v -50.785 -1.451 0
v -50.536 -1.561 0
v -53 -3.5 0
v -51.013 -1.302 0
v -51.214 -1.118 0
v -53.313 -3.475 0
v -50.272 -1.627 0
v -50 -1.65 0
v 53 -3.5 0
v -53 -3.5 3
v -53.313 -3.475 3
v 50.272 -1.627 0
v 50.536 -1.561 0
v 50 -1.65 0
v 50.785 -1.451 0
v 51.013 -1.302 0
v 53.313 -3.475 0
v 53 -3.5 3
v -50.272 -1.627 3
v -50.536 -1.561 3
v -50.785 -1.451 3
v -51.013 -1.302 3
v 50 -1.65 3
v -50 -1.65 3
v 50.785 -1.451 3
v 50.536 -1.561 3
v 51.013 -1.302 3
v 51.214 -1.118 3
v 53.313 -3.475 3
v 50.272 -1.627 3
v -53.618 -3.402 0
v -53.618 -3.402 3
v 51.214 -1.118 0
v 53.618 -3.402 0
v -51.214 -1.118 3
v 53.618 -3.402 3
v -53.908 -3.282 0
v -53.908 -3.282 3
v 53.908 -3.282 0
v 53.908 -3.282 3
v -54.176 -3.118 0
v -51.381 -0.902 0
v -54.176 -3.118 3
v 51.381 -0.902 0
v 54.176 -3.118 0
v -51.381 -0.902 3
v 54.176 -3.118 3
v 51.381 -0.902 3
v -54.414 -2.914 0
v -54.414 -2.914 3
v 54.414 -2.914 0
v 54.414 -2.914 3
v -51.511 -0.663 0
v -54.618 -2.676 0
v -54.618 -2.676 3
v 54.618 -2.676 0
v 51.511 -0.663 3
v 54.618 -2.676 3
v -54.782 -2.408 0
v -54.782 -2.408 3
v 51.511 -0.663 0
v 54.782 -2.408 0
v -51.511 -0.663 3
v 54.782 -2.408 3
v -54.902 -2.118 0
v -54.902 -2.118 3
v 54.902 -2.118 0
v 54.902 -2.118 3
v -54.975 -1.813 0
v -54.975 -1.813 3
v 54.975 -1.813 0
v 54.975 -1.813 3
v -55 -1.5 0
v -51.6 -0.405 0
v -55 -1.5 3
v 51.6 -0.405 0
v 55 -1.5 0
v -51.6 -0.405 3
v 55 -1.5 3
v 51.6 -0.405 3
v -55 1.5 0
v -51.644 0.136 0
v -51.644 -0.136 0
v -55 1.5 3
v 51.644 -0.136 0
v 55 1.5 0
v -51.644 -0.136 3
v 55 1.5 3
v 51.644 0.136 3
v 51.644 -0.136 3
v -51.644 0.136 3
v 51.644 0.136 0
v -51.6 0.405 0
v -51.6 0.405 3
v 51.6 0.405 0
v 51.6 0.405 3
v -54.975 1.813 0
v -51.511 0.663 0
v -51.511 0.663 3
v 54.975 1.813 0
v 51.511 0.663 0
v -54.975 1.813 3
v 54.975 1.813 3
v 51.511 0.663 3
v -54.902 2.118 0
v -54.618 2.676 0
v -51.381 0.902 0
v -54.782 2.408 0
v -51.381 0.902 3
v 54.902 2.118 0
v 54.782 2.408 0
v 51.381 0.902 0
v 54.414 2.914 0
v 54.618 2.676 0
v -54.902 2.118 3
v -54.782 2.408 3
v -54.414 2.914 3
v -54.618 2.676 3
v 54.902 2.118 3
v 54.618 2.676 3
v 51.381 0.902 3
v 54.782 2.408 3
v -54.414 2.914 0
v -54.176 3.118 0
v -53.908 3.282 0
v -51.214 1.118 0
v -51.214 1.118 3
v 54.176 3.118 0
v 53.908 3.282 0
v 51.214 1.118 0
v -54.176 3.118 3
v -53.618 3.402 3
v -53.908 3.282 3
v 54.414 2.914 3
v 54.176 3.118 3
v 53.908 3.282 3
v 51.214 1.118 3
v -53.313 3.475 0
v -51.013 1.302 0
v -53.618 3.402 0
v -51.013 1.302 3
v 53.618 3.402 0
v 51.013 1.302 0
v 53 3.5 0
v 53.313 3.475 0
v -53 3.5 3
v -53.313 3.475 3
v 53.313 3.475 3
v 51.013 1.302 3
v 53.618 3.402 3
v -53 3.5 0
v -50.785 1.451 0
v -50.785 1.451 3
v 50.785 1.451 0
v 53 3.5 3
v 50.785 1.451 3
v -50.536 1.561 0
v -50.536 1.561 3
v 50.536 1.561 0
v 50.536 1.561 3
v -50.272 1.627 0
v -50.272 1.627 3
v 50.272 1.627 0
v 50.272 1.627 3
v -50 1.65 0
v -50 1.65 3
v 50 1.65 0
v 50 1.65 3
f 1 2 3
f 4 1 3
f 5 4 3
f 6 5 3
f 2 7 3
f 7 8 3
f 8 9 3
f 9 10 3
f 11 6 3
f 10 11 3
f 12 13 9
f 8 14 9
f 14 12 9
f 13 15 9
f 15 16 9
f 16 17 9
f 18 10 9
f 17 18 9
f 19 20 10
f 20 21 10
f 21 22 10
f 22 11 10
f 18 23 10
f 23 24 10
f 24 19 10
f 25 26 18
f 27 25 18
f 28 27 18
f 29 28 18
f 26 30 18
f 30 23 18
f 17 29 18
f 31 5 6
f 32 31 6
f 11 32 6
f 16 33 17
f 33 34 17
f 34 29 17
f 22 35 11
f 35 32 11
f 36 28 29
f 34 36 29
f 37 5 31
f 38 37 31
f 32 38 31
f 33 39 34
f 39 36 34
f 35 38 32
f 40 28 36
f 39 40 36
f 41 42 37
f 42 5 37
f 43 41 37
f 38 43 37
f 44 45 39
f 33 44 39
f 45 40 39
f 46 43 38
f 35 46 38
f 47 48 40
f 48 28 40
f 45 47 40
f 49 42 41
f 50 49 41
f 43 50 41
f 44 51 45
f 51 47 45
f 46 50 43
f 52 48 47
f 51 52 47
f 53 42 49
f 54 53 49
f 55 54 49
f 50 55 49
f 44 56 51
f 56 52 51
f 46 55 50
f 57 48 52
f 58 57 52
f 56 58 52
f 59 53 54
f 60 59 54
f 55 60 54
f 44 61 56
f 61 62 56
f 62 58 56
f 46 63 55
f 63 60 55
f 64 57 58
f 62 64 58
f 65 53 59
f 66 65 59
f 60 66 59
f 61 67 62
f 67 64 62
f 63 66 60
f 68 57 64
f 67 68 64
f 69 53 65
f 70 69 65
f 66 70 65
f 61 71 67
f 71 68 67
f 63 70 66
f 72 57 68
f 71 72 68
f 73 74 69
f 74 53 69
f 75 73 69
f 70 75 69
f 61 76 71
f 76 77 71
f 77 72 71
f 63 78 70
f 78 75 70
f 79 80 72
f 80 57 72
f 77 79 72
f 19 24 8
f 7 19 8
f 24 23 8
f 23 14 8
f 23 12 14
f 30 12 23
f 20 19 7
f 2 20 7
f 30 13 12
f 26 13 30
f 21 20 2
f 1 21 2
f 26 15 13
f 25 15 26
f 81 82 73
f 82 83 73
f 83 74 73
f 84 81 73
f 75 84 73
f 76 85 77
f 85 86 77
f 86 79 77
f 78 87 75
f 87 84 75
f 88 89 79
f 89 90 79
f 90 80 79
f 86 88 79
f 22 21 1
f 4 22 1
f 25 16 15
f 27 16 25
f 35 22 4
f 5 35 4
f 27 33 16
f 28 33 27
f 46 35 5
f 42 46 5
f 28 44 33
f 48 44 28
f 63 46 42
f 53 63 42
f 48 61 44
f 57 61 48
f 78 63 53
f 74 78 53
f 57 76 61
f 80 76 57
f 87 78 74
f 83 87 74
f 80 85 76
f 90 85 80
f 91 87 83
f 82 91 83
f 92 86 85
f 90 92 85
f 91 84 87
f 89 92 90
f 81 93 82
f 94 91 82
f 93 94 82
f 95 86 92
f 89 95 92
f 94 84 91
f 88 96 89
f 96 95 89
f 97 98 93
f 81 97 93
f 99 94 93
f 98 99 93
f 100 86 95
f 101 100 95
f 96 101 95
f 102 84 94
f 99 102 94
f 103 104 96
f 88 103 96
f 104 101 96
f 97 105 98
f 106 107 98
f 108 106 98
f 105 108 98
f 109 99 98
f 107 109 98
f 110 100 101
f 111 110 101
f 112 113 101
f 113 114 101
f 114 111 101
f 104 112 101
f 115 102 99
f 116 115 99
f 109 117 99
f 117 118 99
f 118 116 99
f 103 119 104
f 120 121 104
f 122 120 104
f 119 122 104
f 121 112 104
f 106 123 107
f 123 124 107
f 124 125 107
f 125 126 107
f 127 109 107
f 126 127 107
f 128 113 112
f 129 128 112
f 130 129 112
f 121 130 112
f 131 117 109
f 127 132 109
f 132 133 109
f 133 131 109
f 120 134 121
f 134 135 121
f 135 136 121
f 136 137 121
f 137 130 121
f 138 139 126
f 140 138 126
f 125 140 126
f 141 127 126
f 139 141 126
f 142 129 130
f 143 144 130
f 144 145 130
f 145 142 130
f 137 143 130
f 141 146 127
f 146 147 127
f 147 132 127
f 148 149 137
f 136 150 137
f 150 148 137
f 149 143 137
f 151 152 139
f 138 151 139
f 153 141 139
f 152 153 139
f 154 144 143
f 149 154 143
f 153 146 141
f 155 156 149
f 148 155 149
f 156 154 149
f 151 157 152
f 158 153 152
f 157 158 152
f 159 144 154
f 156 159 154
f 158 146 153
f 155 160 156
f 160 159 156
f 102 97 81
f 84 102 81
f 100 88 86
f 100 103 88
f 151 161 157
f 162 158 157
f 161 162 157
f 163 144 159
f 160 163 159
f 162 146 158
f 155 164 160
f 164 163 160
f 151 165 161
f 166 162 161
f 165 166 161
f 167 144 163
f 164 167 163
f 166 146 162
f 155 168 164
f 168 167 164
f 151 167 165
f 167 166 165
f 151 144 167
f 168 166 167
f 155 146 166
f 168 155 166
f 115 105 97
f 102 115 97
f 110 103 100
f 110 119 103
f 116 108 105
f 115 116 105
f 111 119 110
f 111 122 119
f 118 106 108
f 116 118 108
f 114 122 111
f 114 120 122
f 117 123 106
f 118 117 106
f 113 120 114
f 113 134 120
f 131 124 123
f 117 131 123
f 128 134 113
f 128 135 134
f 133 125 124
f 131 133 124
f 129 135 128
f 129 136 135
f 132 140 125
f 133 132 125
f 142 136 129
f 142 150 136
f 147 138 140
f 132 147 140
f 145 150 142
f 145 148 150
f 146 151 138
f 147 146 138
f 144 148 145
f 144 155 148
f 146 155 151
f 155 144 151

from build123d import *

# Parameters (mm, degrees)
SKETCH_1_W      = 110
SKETCH_1_H      = 7
EXTRUDE_1_DEPTH = 3
FILLET_1_R      = 2


with BuildPart() as part:
    # 草图1 → 凸台-拉伸1 (new body)
    with BuildSketch(Plane.XY):
        Rectangle(SKETCH_1_W, SKETCH_1_H)
        with BuildLine():
            Line((-50, 1.65), (50, 1.65))
            ThreePointArc((50, 1.65), (51.65, 0), (50, -1.65))
            Line((50, -1.65), (-50, -1.65))
            ThreePointArc((-50, -1.65), (-51.65, 0), (-50, 1.65))
        make_face(mode=Mode.SUBTRACT)
    extrude(amount=EXTRUDE_1_DEPTH)

    # 圆角1
    fillet_1_edges = [part.edges().sort_by_distance(p)[0] for p in [
        (55, -3.5, 1.5),
        (-55, -3.5, 1.5),
        (-55, 3.5, 1.5),
        (55, 3.5, 1.5),
    ]]
    fillet(fillet_1_edges, radius=FILLET_1_R)


solid = part.part
